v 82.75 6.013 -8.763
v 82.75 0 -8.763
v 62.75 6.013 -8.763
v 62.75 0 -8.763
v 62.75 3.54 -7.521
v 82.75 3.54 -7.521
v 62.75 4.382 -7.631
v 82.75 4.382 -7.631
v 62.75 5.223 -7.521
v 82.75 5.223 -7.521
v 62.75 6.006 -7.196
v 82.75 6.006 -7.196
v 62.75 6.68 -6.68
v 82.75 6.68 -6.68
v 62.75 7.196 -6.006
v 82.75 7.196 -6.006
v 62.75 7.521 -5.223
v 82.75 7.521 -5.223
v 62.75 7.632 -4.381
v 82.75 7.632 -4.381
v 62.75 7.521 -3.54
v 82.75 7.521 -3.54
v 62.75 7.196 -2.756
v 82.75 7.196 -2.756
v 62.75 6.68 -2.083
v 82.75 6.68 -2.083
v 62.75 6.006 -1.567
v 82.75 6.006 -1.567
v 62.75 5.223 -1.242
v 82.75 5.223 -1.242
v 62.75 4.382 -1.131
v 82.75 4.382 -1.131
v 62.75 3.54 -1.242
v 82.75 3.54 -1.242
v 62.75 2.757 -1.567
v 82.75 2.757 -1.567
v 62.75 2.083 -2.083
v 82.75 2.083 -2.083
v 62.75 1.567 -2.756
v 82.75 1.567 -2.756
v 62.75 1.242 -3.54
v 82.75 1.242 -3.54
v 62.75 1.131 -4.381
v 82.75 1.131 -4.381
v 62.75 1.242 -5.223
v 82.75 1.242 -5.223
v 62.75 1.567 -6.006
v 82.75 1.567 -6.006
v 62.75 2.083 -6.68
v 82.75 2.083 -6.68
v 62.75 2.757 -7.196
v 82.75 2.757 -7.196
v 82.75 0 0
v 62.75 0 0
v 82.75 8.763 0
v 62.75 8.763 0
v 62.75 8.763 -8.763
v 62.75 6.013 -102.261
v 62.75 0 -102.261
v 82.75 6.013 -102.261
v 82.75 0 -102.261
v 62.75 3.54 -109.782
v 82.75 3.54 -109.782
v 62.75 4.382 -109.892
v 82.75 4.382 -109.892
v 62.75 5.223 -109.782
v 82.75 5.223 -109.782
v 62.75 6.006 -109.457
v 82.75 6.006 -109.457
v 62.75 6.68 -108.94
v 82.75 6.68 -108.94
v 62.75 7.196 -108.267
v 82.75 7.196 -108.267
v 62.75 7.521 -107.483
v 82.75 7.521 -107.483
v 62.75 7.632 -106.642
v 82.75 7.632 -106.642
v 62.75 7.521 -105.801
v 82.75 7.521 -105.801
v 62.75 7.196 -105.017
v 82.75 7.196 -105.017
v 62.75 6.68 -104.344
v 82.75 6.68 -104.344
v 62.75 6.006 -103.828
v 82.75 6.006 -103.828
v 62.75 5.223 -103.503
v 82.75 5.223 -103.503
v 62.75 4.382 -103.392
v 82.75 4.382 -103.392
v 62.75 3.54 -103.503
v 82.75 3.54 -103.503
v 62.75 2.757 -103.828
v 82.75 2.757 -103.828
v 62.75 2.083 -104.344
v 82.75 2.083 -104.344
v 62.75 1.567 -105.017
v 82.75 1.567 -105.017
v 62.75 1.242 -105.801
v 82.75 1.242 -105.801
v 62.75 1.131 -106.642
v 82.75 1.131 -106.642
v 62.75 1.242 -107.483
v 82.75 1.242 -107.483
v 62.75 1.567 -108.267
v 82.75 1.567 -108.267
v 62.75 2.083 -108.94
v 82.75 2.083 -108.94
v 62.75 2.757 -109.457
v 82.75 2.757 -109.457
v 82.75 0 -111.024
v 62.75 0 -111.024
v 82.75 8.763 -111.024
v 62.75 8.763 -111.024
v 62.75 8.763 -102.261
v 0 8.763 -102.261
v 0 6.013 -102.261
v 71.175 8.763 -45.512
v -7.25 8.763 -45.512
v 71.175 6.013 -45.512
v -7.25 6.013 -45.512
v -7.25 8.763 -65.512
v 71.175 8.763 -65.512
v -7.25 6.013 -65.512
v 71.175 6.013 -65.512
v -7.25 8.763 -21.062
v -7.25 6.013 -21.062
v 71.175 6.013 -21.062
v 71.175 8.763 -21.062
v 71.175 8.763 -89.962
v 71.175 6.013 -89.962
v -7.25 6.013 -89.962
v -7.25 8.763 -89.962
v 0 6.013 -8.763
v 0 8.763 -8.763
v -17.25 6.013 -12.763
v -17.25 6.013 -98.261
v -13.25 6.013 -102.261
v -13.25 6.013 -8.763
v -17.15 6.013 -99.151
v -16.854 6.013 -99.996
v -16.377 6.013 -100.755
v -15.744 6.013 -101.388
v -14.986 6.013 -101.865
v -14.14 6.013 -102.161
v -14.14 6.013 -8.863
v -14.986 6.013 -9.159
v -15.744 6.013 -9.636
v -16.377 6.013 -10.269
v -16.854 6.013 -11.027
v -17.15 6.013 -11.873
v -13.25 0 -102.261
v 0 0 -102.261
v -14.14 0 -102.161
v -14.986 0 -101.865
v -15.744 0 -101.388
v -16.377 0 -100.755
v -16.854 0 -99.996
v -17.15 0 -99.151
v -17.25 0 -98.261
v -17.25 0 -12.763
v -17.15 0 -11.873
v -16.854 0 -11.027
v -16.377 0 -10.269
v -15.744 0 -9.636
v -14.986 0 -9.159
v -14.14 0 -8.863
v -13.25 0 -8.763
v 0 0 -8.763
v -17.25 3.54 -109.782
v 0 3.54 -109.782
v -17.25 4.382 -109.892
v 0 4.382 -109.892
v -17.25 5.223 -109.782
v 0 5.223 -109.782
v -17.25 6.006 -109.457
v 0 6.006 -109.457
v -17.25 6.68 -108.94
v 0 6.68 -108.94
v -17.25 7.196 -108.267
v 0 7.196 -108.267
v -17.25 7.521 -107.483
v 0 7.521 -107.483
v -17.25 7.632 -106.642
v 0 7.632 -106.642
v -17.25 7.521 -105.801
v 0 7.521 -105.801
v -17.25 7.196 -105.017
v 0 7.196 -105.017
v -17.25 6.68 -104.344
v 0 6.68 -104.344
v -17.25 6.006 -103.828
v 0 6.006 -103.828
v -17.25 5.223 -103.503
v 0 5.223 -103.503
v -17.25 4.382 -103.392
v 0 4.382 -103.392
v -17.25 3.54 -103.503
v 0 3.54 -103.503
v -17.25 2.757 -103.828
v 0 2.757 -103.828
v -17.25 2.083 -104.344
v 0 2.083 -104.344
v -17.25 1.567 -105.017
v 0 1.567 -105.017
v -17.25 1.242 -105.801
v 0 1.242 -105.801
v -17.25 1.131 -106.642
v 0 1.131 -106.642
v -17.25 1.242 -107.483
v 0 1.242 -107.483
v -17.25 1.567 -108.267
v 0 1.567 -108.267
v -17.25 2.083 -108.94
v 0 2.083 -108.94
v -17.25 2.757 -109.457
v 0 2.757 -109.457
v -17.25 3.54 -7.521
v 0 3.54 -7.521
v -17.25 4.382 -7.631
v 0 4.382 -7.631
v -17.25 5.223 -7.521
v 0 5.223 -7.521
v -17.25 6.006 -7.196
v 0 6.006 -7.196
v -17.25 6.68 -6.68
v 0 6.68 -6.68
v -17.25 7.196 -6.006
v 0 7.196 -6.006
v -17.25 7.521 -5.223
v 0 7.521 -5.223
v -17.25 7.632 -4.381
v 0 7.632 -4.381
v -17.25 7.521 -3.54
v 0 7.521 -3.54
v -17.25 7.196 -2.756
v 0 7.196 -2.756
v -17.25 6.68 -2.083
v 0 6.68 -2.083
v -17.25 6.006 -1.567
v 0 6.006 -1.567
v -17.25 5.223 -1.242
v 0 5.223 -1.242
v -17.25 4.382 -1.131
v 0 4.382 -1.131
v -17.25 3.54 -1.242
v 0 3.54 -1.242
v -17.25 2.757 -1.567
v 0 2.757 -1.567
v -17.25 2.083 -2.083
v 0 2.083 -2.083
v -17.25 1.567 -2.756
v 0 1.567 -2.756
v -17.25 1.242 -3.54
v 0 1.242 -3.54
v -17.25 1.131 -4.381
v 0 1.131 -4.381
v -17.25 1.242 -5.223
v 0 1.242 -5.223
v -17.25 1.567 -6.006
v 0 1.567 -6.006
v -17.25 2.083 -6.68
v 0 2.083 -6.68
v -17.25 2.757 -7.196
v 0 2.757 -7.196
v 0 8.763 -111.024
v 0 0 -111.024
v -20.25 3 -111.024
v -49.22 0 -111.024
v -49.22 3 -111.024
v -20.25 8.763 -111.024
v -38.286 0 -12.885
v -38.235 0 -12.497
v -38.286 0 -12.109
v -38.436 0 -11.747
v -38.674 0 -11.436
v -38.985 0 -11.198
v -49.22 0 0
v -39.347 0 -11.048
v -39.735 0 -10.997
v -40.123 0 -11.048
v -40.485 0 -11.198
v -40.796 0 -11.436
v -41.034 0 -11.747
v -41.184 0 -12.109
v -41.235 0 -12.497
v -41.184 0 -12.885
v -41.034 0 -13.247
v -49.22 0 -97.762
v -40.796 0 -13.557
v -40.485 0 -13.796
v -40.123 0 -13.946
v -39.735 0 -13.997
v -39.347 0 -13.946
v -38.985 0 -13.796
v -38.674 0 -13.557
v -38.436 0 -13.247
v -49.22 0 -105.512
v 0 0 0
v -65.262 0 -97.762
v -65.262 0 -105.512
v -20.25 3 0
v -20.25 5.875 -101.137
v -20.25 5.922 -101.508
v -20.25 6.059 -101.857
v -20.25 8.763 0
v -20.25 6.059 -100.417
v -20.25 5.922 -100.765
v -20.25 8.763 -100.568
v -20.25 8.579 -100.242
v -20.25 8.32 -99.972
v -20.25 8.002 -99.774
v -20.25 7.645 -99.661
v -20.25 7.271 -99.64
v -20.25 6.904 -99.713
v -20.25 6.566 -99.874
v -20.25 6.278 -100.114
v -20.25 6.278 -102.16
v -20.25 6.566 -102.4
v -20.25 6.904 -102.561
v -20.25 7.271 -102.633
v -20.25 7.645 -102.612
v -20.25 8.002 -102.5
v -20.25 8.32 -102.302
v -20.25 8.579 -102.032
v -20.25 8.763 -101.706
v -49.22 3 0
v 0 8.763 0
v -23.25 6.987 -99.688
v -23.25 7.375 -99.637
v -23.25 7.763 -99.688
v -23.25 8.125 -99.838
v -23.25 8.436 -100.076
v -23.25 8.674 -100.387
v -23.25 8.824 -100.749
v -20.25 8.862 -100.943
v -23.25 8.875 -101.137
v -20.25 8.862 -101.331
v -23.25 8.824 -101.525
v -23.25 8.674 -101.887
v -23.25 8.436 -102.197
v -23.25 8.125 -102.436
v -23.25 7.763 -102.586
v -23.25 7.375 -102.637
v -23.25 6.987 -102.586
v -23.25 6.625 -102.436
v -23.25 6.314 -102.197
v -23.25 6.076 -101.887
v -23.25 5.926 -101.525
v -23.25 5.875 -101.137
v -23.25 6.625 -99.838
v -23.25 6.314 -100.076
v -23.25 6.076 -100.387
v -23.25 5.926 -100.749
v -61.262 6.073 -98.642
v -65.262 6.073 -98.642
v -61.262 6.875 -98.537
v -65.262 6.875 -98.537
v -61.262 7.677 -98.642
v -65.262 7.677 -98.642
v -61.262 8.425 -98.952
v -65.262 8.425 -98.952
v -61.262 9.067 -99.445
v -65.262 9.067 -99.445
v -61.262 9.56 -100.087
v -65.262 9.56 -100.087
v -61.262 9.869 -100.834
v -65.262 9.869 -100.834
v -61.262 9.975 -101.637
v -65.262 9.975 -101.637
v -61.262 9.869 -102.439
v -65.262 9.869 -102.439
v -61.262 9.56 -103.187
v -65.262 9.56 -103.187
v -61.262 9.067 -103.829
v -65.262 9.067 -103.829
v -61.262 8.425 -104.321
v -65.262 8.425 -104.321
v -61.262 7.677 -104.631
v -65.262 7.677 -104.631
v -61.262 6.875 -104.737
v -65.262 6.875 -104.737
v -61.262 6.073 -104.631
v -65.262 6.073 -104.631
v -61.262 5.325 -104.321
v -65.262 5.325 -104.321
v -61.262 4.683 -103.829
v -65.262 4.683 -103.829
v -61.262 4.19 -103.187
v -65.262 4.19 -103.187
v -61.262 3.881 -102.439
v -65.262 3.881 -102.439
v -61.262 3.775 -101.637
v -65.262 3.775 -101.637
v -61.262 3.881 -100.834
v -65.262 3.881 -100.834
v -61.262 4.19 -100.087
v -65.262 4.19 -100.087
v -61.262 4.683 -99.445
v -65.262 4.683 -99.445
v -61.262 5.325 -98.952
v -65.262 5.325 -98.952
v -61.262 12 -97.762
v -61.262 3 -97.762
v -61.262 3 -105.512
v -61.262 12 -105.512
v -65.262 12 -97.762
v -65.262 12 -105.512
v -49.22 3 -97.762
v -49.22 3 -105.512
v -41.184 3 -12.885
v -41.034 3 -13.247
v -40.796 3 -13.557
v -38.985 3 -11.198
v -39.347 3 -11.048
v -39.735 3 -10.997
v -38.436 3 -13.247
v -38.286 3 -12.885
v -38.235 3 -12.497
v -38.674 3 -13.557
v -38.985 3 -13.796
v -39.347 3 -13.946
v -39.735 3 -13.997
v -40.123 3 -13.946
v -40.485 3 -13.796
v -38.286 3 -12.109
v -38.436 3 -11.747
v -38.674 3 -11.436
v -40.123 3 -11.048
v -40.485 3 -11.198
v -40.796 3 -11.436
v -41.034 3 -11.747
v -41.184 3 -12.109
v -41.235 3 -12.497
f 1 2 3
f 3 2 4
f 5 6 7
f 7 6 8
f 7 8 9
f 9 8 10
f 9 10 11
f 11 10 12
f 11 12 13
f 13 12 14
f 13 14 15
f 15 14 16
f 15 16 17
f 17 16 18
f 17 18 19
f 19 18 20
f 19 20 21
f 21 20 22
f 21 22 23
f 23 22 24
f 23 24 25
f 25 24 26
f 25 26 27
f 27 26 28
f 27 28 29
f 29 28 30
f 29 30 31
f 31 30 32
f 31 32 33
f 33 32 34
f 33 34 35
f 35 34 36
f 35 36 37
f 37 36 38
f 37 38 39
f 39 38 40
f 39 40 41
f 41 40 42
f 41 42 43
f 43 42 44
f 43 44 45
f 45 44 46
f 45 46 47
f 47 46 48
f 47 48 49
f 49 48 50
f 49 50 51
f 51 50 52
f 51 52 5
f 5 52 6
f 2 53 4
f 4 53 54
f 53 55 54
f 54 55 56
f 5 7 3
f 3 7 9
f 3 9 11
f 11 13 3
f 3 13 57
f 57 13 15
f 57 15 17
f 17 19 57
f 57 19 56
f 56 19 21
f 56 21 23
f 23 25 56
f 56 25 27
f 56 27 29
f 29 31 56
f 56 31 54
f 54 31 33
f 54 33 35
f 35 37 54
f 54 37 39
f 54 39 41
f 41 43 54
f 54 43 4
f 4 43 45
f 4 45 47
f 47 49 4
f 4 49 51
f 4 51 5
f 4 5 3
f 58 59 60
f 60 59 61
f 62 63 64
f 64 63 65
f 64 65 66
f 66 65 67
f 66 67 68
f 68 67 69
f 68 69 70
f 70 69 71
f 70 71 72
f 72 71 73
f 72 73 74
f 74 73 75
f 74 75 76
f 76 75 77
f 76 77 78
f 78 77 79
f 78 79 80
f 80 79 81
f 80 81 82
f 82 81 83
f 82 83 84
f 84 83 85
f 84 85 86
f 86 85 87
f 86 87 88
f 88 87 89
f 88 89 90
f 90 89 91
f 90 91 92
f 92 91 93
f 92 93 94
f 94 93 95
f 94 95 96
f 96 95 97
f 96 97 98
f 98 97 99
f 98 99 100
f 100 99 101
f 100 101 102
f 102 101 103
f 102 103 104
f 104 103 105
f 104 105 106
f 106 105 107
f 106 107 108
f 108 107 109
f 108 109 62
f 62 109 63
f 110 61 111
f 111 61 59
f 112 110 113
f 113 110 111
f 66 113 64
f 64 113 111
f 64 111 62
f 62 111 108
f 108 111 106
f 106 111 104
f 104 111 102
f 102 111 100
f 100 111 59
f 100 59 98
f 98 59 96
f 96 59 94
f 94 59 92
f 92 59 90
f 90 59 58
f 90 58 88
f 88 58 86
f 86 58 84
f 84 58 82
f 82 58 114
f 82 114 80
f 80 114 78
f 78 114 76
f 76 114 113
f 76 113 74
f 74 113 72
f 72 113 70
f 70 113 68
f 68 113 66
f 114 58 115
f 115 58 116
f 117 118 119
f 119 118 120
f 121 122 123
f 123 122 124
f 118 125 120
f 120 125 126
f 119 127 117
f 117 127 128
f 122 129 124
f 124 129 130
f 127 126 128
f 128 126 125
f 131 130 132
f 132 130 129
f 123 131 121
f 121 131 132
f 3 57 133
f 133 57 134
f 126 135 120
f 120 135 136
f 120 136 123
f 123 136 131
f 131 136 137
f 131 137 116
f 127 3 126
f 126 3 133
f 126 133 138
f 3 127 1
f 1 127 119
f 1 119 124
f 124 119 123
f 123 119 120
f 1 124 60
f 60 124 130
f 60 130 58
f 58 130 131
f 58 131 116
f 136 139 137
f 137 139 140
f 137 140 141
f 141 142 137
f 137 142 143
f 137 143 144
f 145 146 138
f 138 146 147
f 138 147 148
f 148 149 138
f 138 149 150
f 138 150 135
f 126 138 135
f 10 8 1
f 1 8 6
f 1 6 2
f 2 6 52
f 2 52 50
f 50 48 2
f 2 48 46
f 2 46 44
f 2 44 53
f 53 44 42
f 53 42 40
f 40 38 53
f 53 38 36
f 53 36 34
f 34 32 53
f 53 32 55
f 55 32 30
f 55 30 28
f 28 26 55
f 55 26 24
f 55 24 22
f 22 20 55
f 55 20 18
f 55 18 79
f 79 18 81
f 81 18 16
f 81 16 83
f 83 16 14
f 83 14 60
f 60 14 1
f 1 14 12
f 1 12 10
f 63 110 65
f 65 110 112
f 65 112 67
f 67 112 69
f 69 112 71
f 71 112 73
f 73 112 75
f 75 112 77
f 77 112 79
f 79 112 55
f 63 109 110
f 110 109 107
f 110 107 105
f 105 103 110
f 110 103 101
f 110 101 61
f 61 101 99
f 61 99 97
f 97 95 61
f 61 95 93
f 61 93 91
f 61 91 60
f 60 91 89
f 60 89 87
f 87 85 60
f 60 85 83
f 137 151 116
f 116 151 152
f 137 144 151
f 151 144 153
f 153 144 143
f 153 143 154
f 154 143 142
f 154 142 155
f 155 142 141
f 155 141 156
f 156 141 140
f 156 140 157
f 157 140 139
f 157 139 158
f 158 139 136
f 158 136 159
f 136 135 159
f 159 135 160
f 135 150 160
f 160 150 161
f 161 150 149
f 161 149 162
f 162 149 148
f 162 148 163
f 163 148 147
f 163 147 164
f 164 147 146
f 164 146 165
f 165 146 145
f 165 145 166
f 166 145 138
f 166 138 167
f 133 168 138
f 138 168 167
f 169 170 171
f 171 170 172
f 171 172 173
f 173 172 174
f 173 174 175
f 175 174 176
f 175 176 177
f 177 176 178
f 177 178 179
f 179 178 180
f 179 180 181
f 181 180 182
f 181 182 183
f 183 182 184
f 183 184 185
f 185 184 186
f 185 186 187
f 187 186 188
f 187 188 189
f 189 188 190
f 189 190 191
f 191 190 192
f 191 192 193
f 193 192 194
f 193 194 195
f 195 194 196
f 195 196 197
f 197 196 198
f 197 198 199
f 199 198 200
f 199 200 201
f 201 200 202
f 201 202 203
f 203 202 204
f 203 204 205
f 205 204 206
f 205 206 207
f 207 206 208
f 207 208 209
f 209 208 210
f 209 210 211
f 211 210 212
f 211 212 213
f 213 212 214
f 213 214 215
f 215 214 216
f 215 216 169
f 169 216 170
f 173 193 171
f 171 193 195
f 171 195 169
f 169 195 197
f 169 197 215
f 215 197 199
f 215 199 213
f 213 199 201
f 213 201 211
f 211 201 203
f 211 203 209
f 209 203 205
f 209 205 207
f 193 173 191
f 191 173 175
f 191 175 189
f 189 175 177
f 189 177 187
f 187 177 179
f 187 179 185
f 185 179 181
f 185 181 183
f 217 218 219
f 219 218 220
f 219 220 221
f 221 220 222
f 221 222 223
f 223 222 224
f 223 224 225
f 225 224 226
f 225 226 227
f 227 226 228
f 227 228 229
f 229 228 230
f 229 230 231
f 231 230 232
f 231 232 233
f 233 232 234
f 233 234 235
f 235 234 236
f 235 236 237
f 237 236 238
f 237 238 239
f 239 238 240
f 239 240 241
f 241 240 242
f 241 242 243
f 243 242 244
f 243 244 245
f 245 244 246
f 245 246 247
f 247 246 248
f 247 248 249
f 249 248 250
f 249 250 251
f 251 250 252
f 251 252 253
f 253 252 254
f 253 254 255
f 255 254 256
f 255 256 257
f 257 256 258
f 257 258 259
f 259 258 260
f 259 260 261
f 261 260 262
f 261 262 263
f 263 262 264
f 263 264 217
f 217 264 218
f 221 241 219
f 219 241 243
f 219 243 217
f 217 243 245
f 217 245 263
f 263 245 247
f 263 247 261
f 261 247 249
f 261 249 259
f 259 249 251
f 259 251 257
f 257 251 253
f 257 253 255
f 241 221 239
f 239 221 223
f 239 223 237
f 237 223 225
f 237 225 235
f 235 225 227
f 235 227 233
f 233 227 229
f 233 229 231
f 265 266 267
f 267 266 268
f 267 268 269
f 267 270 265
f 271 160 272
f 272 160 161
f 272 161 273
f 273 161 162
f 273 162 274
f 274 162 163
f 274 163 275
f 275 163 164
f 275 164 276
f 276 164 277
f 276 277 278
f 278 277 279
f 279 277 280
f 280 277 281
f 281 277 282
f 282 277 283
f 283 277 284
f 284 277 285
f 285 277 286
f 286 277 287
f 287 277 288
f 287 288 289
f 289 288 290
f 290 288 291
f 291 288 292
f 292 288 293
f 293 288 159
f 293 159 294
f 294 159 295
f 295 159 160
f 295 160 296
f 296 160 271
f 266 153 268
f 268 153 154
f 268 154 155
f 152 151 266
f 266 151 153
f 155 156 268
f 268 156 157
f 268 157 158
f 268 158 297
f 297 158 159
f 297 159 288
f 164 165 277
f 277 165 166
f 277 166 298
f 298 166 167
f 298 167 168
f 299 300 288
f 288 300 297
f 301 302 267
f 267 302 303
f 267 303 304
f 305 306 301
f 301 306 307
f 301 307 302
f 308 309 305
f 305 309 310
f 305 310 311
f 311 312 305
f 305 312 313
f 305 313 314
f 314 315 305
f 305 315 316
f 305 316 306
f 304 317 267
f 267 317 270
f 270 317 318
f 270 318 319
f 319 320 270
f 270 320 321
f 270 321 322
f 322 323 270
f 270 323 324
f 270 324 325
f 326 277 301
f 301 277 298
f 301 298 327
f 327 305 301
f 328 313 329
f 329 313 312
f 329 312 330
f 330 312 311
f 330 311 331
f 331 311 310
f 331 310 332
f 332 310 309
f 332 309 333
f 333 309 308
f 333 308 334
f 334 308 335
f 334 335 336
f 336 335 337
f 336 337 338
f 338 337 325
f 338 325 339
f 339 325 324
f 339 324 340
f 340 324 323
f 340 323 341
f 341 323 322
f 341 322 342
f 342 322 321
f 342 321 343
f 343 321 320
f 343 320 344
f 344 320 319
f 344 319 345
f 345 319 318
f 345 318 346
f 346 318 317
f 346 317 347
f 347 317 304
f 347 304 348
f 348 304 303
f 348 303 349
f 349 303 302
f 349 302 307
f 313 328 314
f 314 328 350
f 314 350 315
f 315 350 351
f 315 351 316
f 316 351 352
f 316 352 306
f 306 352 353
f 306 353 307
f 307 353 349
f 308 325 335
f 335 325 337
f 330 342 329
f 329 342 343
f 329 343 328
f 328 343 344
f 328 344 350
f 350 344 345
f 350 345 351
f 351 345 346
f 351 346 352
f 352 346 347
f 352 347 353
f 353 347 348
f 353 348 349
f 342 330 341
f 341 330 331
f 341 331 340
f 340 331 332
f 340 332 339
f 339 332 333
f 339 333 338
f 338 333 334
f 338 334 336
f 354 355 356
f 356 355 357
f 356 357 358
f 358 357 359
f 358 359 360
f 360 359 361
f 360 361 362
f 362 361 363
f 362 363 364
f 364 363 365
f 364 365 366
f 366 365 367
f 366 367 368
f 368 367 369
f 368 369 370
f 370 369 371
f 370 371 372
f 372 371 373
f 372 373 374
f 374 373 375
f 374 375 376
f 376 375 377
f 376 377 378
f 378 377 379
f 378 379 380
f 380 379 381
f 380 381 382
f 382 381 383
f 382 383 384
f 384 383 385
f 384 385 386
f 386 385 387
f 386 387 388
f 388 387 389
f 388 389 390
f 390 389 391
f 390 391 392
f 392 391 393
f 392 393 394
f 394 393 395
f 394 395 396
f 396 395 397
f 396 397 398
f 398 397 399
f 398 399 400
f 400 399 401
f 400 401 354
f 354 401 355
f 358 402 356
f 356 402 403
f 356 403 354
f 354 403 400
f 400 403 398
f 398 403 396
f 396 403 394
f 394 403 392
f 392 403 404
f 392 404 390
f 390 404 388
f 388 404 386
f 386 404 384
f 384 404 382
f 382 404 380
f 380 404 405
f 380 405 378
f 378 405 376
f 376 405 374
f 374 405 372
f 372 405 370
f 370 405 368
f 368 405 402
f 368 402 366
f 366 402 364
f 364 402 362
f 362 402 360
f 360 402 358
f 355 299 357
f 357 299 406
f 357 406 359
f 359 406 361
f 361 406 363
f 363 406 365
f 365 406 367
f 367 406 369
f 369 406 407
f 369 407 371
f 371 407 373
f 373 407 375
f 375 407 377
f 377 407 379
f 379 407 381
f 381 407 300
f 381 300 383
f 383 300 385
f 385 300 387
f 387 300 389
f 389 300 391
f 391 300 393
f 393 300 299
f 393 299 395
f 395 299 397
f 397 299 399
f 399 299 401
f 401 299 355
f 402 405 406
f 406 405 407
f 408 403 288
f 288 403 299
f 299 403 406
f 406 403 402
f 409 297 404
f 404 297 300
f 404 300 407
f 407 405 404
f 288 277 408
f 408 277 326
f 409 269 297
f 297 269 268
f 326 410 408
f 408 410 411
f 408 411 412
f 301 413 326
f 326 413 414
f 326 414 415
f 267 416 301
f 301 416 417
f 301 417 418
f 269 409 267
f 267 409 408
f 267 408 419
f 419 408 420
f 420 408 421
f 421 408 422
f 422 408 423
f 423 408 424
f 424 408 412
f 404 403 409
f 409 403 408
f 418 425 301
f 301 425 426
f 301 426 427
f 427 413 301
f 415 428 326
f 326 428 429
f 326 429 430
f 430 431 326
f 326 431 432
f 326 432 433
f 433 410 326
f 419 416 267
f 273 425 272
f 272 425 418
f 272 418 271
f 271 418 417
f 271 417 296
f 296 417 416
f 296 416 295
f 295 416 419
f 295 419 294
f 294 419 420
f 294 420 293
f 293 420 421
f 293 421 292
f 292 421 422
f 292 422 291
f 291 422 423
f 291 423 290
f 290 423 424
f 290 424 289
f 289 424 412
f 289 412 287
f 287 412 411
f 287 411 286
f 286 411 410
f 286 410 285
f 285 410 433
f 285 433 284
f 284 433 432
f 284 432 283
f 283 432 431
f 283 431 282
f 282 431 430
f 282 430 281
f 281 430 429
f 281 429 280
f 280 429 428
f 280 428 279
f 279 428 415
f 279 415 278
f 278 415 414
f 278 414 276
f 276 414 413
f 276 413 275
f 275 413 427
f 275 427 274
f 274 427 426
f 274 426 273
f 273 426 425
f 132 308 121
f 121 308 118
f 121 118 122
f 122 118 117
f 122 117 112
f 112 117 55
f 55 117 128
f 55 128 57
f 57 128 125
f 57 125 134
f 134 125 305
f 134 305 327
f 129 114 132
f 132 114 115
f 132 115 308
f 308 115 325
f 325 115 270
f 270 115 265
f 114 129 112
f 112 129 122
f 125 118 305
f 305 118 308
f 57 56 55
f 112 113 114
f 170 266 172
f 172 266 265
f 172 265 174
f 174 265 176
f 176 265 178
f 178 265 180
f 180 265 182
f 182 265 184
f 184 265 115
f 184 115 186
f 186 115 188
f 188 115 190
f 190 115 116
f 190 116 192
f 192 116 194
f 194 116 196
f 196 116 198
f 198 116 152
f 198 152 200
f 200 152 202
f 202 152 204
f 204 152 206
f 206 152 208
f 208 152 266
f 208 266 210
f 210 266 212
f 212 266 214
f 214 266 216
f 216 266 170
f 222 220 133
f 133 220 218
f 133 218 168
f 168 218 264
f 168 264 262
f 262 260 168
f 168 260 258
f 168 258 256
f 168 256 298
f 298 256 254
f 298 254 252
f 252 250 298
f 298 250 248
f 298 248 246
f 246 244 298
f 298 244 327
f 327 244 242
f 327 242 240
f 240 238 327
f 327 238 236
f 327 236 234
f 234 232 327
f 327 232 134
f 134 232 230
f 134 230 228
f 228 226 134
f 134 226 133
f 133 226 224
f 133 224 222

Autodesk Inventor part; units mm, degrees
ref_plane "YZ Plane" through (0, 0, 0) normal (1, 0, 0) x (0, 1, 0)
ref_plane "XZ Plane" through (0, 0, 0) normal (0, 1, 0) x (-1, 0, 0)
ref_plane "XY Plane" through (0, 0, 0) normal (0, 0, 1) x (1, 0, 0)
sketch "Sketch1" plane through (0, 0, 0) normal (1, 0, 0) x (0, 1, 0)
  line L0 (0, 0) -> (8.763, 0)
  line L1 (8.763, 0) -> (8.763, -5.5118)
  line L2 (8.763, -5.5118) -> (0, -5.5118)
  line L3 (0, -5.5118) -> (0, 0)
  line L4 (1.5875, -3.9243) -> (7.1755, -3.9243)
  line L5 (7.1755, -3.9243) -> (7.1755, -1.5875)
  line L6 (7.1755, -1.5875) -> (1.5875, -1.5875)
  line L7 (1.5875, -1.5875) -> (1.5875, -3.9243)
  line L8 (1.5875, -3.9243) -> (7.1755, -1.5875) construction
  line L9 (7.1755, -3.9243) -> (1.5875, -1.5875) construction
  line L10 (0, -105.512) -> (8.763, -105.512)
  line L11 (8.763, -105.512) -> (8.763, -111.0238)
  line L12 (8.763, -111.0238) -> (0, -111.0238)
  line L13 (0, -111.0238) -> (0, -105.512)
  line L14 (1.5875, -109.4363) -> (7.1755, -109.4363)
  line L15 (7.1755, -109.4363) -> (7.1755, -107.0995)
  line L16 (7.1755, -107.0995) -> (1.5875, -107.0995)
  line L17 (1.5875, -107.0995) -> (1.5875, -109.4363)
  line L18 (1.5875, -109.4363) -> (7.1755, -107.0995) construction
  line L19 (7.1755, -109.4363) -> (1.5875, -107.0995) construction
  point P0 (4.3815, -2.7559)
  point P1 (4.3815, -108.2679)
  dimension "d0" = 8.763
  dimension "d1" = 5.5118
  dimension "d2" = 5.588
  dimension "d3" = 2.3368
  dimension "d4" = 8.763
  dimension "d5" = 5.5118
  dimension "d6" = 5.588
  dimension "d7" = 2.3368
extrude "Extrusion1" add sketch "Sketch1" against normal blind 30
sketch "Sketch2" plane through (-30, 0, 0) normal (-1, 0, 0) x (0, 0, 1)
  line L0 (0, 0) -> (0, 8.763) projected
  line L1 (-111.0238, 0) -> (0, 0)
  line L2 (0, 0) -> (0, 8.763)
  line L3 (0, 8.763) -> (-111.0238, 8.763)
  line L4 (-111.0238, 8.763) -> (-111.0238, 0)
extrude "Extrusion2" add sketch "Sketch2" along normal blind 0.25
fillet "Fillet1" radius 5 2 edges at (-30, 4.3815, -5.5118) (-30, 4.3815, -105.512)
sketch "Sketch3" plane through (-30.25, 0, 0) normal (-1, 0, 0) x (0, 0, 1)
  point P0 (0, 0)
sketch "Sketch4" plane through (-30.25, 0, 0) normal (-1, 0, 0) x (0, 0, 1)
  line L0 (-111.0238, 8.763) -> (-111.0238, 0) projected
  line L1 (0, 0) -> (-111.0238, 0)
  line L2 (-111.0238, 0) -> (-111.0238, 3)
  line L3 (-111.0238, 3) -> (0, 3)
  line L4 (0, 3) -> (0, 0)
  dimension "d13" = 3
extrude "Extrusion3" add sketch "Sketch4" along normal blind 18.97
sketch "Sketch5" plane through (-30.25, 3, 0) normal (0, 1, 0) x (1, 0, 0)
  line L0 (0, 0) -> (0, 111.0238) construction
  line L1 (0, 0) -> (-9.485, 0) construction
  line L2 (-9.485, 0) -> (-9.485, 6.985) construction
  line L3 (-9.485, 6.985) -> (0, 6.985) construction
  line L4 (0, 6.985) -> (0, 0) construction
  circle A0 centre (-9.485, 6.985) radius 1.5875
  point P0 (30.25, 0)
  dimension "d16" = 9.485
  dimension "d17" = 6.985
  dimension "d18" = 3.175
extrude "Extrusion4" cut sketch "Sketch5" against normal blind 5
sketch "Sketch6" plane through (-30.25, 3, 0) normal (0, 1, 0) x (1, 0, 0)
  line L0 (30.25, 111.0238) -> (-18.97, 111.0238) construction
  line L1 (-28.07, 111.0238) -> (-28.07, 111.0238) construction
  line L2 (-28.07, 111.0238) -> (-28.07, 111.0238) construction
  line L3 (-28.07, 111.0238) -> (-28.07, 111.0238) construction
  line L4 (-28.07, 111.0238) -> (-28.07, 111.0238) construction
  line L5 (-28.07, 111.0238) -> (-28.07, 111.0238) construction
  line L6 (-28.07, 118.8238) -> (-28.07, 111.0238) construction
  line L7 (-28.07, 111.0238) -> (-37.17, 111.0238) construction
  line L8 (-37.17, 111.0238) -> (-37.17, 114.8988) construction
  line L9 (-28.07, 111.0238) -> (-28.07, 111.0238) construction
  line L10 (-28.07, 111.0238) -> (-28.07, 111.0238) construction
  line L11 (-28.07, 111.0238) -> (-28.07, 111.0238) construction
  line L12 (-28.07, 111.0238) -> (-28.07, 111.0238) construction
  line L13 (-28.07, 111.0238) -> (-28.07, 111.0238) construction
  line L14 (-28.07, 111.0238) -> (-28.07, 111.0238)
  line L15 (-28.07, 111.0238) -> (-28.07, 111.0238)
  line L16 (-28.07, 111.0238) -> (-28.07, 111.0238)
  line L17 (-28.07, 111.0238) -> (-28.07, 111.0238)
  point P0 (30.25, 0)
  dimension "d21" = 0
  dimension "d22" = 0
  dimension "d23" = 0
  dimension "d26" = 0
  dimension "d27" = 0
sketch "Sketch7" plane through (-30.25, 3, 0) normal (0, 1, 0) x (1, 0, 0)
  line L0 (-18.97, 0) -> (-18.97, 111.0238) projected
  line L1 (-18.97, 111.0238) -> (-27.97, 111.0238)
  line L2 (-27.97, 111.0238) -> (-27.97, 103.2738)
  line L3 (-27.97, 103.2738) -> (-18.97, 103.2738)
  line L4 (-18.97, 103.2738) -> (-18.97, 111.0238)
  point P0 (30.25, 0)
  dimension "d28" = 9
  dimension "d29" = 7.75
extrude "Extrusion5" add sketch "Sketch7" against normal blind 3
sketch "Sketch8" plane through (-30.25, 3, 0) normal (0, 1, 0) x (1, 0, 0)
  line L0 (-27.97, 111.0238) -> (-27.97, 103.2738) projected
  line L1 (-27.97, 111.0238) -> (-31.97, 111.0238)
  line L2 (-31.97, 111.0238) -> (-31.97, 103.2738)
  line L3 (-31.97, 103.2738) -> (-27.97, 103.2738)
  line L4 (-27.97, 103.2738) -> (-27.97, 111.0238)
  point P0 (30.25, 0)
  dimension "d32" = 4
extrude "Extrusion6" add sketch "Sketch8" along normal blind 8 and the other way blind 3
sketch "Sketch9" plane through (0, 0, -5.5118) normal (0, -1, 0) x (1, 0, 0)
  point P0 (0, 5.5118)
sketch "Sketch10" plane through (-62.22, 0, -103.2738) normal (-1, 0, 0) x (0, 0, 1)
  line L0 (-7.75, 0) -> (-2.2382, 0) construction
  line L1 (0, 3) -> (0, 11) construction
  line L2 (-7.75, 0) -> (0, 0) construction
  line L3 (0, 0) -> (0, 3) construction
  line L4 (0, 3) -> (-7.75, 3) construction
  line L5 (-7.75, 3) -> (-7.75, 0) construction
  line L6 (103.2738, 3) -> (0, 3) construction
  line L7 (-7.75, 8.763) -> (-7.75, 3) construction
  line L8 (0, 3) -> (-7.75, 3) construction
  line L9 (-7.75, 3) -> (-7.75, 6.875) construction
  line L10 (-7.75, 6.875) -> (0, 6.875) construction
  line L11 (0, 6.875) -> (0, 3) construction
  circle A0 centre (-3.875, 6.875) radius 3.1
  point P0 (103.2738, 0)
  dimension "d37" = 3.875
  dimension "d38" = 6.2
extrude "Extrusion7" cut sketch "Sketch10" against normal blind 5
sketch "Sketch11" plane through (0, 8.763, 0) normal (0, 1, 0) x (1, 0, 0)
  line L0 (-30.25, 111.0238) -> (-30.25, 0) projected
  line L1 (0, 0) -> (-30.25, 0) projected
  line L2 (-30.25, 111.0238) -> (-20.25, 111.0238)
  line L3 (-20.25, 111.0238) -> (-20.25, 0)
  line L4 (-20.25, 0) -> (-30.25, 0)
  line L5 (-30.25, 0) -> (-30.25, 111.0238)
  dimension "d41" = 10
extrude "Extrusion8" cut sketch "Sketch11" against normal blind 10
sketch "Sketch12" plane through (-30.25, 0, 0) normal (1, 0, 0) x (0, 0, -1)
  line L0 (111.0238, 3) -> (111.0238, 0) projected
  line L1 (0, 0) -> (111.0238, 0)
  line L2 (111.0238, 0) -> (111.0238, 3)
  line L3 (111.0238, 3) -> (0, 3)
  line L4 (0, 3) -> (0, 0)
extrude "Extrusion9" add sketch "Sketch12" along normal blind 13
sketch "Sketch13" plane through (0, 8.763, 0) normal (0, 1, 0) x (1, 0, 0)
  line L0 (-20.25, 5.5118) -> (-20.25, 0) projected
  line L1 (-62.22, 111.0238) -> (0, 111.0238) projected
  line L2 (-20.25, 0) -> (-17.25, 0)
  line L3 (-17.25, 0) -> (-17.25, 111.0238)
  line L4 (-17.25, 111.0238) -> (-20.25, 111.0238)
  line L5 (-20.25, 111.0238) -> (-20.25, 0)
  point P0 (0, 0)
  dimension "d46" = 3
extrude "Extrusion10" add sketch "Sketch13" against normal blind 8.75
sketch "Sketch14" plane through (-49.22, 3, 0) normal (0, 1, 0) x (1, 0, 0)
  line L0 (-9, 111.0238) -> (28.97, 111.0238) construction
  line L1 (0, 0) -> (0, 0) construction
  line L2 (0, 0) -> (0, 111.0238) construction
  line L3 (0, 111.0238) -> (0, 111.0238) construction
  line L4 (0, 111.0238) -> (0, 0) construction
  point P0 (49.22, 0)
  dimension "d49" = 0
sketch "Sketch15" plane through (-49.22, 3, 0) normal (0, 1, 0) x (1, 0, 0)
  line L0 (0, 107.1488) -> (28.97, 107.1488) construction
  line L1 (28.97, 111.0238) -> (28.97, 0) construction
  point P0 (49.22, 0)
sketch "Sketch16" plane through (-20.25, 8.763, -111.0238) normal (-1, 0, 0) x (0, 0, 1)
  line L0 (0, 0) -> (111.0238, 0) construction
  line L1 (0, 0) -> (7.7501, 0) construction
  line L2 (0, -5.763) -> (111.0238, -5.763) construction
  line L3 (0, 0) -> (7.7501, 0) construction
  line L4 (7.7501, 0) -> (7.7501, -5.763) construction
  line L5 (7.7501, -5.763) -> (0, -5.763) construction
  line L6 (0, -5.763) -> (0, 0) construction
  line L7 (0, -5.763) -> (4.375, -5.763) construction
  line L8 (4.375, -5.763) -> (4.375, -1.388) construction
  line L9 (4.375, -1.388) -> (0, -1.388) construction
  line L10 (0, -1.388) -> (0, -5.763) construction
  circle A0 centre (4.375, -1.388) radius 1.5
  point P0 (111.0238, -8.763)
  dimension "d52" = 4.375
  dimension "d53" = 4.375
  dimension "d54" = 3
extrude "Extrusion11" add sketch "Sketch16" along normal blind 2
sketch "Sketch17" plane through (-49.22, 3, 0) normal (0, 1, 0) x (1, 0, 0)
  circle A0 centre (9.485, 6.985) radius 1.5875 construction
  line L0 (0, 0) -> (0, 103.2738) construction
  line L1 (9.485, 6.985) -> (0, 6.985) construction
  line L2 (0, 6.985) -> (0, 0) construction
  line L3 (0, 0) -> (9.485, 0) construction
  line L4 (9.485, 0) -> (9.485, 6.985) construction
  line L5 (31.97, 5.5118) -> (31.97, 105.512) construction
  line L6 (31.97, 5.5118) -> (0, 5.5118) construction
  line L7 (0, 5.5118) -> (0, 12.4968) construction
  line L8 (0, 12.4968) -> (31.97, 12.4968) construction
  line L9 (31.97, 12.4968) -> (31.97, 5.5118) construction
  circle A1 centre (9.485, 12.4968) radius 1.5
  circle A2 centre (9.485, 6.985) radius 1.4732
  circle A3 centre (9.485, 6.985) radius 2.1184
  point P0 (49.22, 0)
  dimension "d57" = 9.485
  dimension "d58" = 6.985
  dimension "d59" = 6.985
  dimension "d60" = 3
extrude "Extrusion12" cut sketch "Sketch17" against normal blind 3 contours A1
sketch "Sketch18" plane through (-49.22, 3, 0) normal (0, 1, 0) x (1, 0, 0)
  circle A0 centre (9.485, 6.985) radius 1.5875 projected
  circle A1 centre (9.485, 6.985) radius 2.2024
  point P0 (49.22, 0)
extrude "Extrusion13" add sketch "Sketch18" against normal blind 3 contours A0 | A1
sketch "Sketch19" plane through (-49.22, 3, 0) normal (0, 1, 0) x (1, 0, 0)
  line L0 (49.22, 5.5118) -> (31.97, 5.5118) construction
  line L1 (31.97, 5.5118) -> (0, 5.5118) construction
  line L2 (31.97, 105.5118) -> (31.97, 5.5118) construction
  line L3 (0, 103.2738) -> (0, 0) construction
  line L4 (0, 103.2738) -> (-13.792, 103.2738) construction
  line L5 (-13.792, 103.2738) -> (-13.792, 112.9328) construction
  line L6 (-13.792, 112.9328) -> (0, 112.9328) construction
  line L7 (0, 112.9328) -> (0, 103.2738) construction
  line L8 (-9, 103.2738) -> (0, 103.2738) projected
  line L9 (0, 103.2738) -> (-14.6847, 103.2738)
  line L10 (-14.6847, 103.2738) -> (-14.6847, 119.5752)
  line L11 (-14.6847, 119.5752) -> (0, 119.5752)
  line L12 (0, 119.5752) -> (0, 103.2738)
  point P0 (49.22, 0)
extrude "Extrusion14" cut sketch "Sketch19" along normal mid plane 30
sketch "Sketch20" plane through (-49.22, 3, 0) normal (0, 1, 0) x (1, 0, 0)
  line L0 (31.97, 5.5118) -> (31.97, 105.512) construction
  line L1 (0, 0) -> (0, 111.0238) construction
  line L2 (31.97, 5.5118) -> (0, 5.5118) construction
  line L3 (0, 5.5118) -> (0, 105.5118) construction
  line L4 (0, 105.5118) -> (31.97, 105.5118) construction
  line L5 (31.97, 105.5118) -> (31.97, 5.5118) construction
  line L6 (0, 105.5118) -> (-12.042, 105.5118)
  line L7 (-12.042, 105.5118) -> (-12.042, 97.7618)
  line L8 (-12.042, 97.7618) -> (0, 97.7618)
  line L9 (0, 97.7618) -> (0, 105.5118)
  point P0 (49.22, 0)
  dimension "d68" = 100
  dimension "d69" = 12.042
  dimension "d70" = 7.75
extrude "Extrusion15" add sketch "Sketch20" against normal blind 3
sketch "Sketch21" plane through (-49.22, 3, 0) normal (0, 1, 0) x (1, 0, 0)
  line L0 (-12.042, 97.7618) -> (0, 97.7618) projected
  line L1 (-12.042, 97.7618) -> (-16.042, 97.7618)
  line L2 (-16.042, 97.7618) -> (-16.042, 105.5118)
  line L3 (-16.042, 105.5118) -> (-12.042, 105.5118)
  line L4 (-12.042, 105.5118) -> (-12.042, 97.7618)
  point P0 (49.22, 0)
  dimension "d73" = 4
extrude "Extrusion16" add sketch "Sketch21" along normal blind 9 and the other way blind 3
sketch "Sketch22" plane through (-65.262, 0, -97.7618) normal (-1, 0, 0) x (0, 0, 1)
  line L0 (-13.262, 3) -> (97.7618, 3) construction
  line L1 (0, 3) -> (-7.75, 3) construction
  line L2 (-7.75, 0) -> (-7.75, 3) construction
  line L3 (-7.75, 3) -> (-3.875, 3) construction
  line L4 (-3.875, 3) -> (-3.875, 6.875) construction
  line L5 (-3.875, 6.875) -> (-7.75, 6.875) construction
  line L6 (-7.75, 6.875) -> (-7.75, 3) construction
  circle A0 centre (-3.875, 6.875) radius 3.1
  point P0 (97.7618, 0)
  dimension "d78" = 7.75
  dimension "d79" = 3.875
  dimension "d80" = 3.875
  dimension "d81" = 6.2
extrude "Extrusion17" cut sketch "Sketch22" against normal blind 4
sketch "Sketch23" plane through (-49.22, 3, 0) normal (0, 1, 0) x (1, 0, 0)
  point P0 (49.22, 0)
sketch "Sketch24" plane through (-20.25, 3, -111.0238) normal (-1, 0, 0) x (0, 0, 1)
  line L0 (0, 5.763) -> (3.8063, 5.763) construction
  line L1 (0, 0) -> (111.0238, 0) construction
  line L2 (0, 5.763) -> (5.512, 5.763) construction
  line L3 (5.512, 5.763) -> (5.512, 0) construction
  line L4 (5.512, 0) -> (0, 0) construction
  line L5 (0, 0) -> (0, 5.763) construction
  line L6 (5.512, 0) -> (9.887, 0) construction
  line L7 (9.887, 0) -> (9.887, 4.375) construction
  line L8 (9.887, 4.375) -> (5.512, 4.375) construction
  line L9 (5.512, 4.375) -> (5.512, 0) construction
  circle A0 centre (9.887, 4.375) radius 1.5
  point P0 (111.0238, -3)
  dimension "d84" = 5.512
  dimension "d85" = 4.375
  dimension "d86" = 4.375
  dimension "d87" = 3
extrude "Extrusion18" add sketch "Sketch24" along normal blind 3
sketch "Sketch25" plane through (-22.25, 7.375, -106.6488) normal (-1, 0, 0) x (0, 0, 1)
  circle A0 centre (0, 0) radius 1.5
  point P0 (106.6488, -7.375)
extrude "Extrusion19" cut sketch "Sketch25" against normal blind 2
sketch "Sketch26" plane through (0, 0, 0) normal (1, 0, 0) x (0, 0, -1)
  line L0 (0, 0) -> (0, 8.763) projected
  line L1 (0, 8.763) -> (8.763, 8.763)
  line L2 (8.763, 8.763) -> (8.763, 0)
  line L3 (8.763, 0) -> (0, 0)
  line L4 (0, 0) -> (0, 8.763)
  line L5 (105.512, 8.763) -> (111.0238, 8.763) projected
  line L6 (5.5118, 0) -> (105.512, 0) projected
  line L7 (111.0238, 8.763) -> (102.2608, 8.763)
  line L8 (102.2608, 8.763) -> (102.2608, 0)
  line L9 (102.2608, 0) -> (111.0238, 0)
  line L10 (111.0238, 0) -> (111.0238, 8.763)
  dimension "d92" = 8.763
  dimension "d93" = 8.763
extrude "Extrusion20" add sketch "Sketch26" against normal blind 20.25
sketch "Sketch27" plane through (-49.22, 3, 0) normal (0, 1, 0) x (1, 0, 0)
  point P0 (49.22, 0)
sketch "Sketch28" plane through (0, 0, 0) normal (1, 0, 0) x (0, 0, -1)
  line L0 (0, 8.763) -> (8.763, 8.763) construction
  line L1 (0, 8.763) -> (8.763, 0) construction
  line L2 (8.763, 0) -> (8.763, 8.763) construction
  line L3 (97.7618, 0) -> (0, 0) construction
  line L4 (8.763, 8.763) -> (0, 0) construction
  line L5 (111.0238, 8.763) -> (102.2608, 8.763) construction
  line L6 (111.0238, 8.763) -> (111.0238, 0) construction
  line L7 (102.2608, 8.763) -> (111.0238, 0) construction
  line L8 (111.0238, 0) -> (111.0238, 8.763) construction
  line L9 (111.0238, 8.763) -> (102.2608, 0) construction
  circle A0 centre (106.6423, 4.3815) radius 3.25
  circle A1 centre (4.3815, 4.3815) radius 3.25
  dimension "d96" = 6.5
  dimension "d97" = 6.5
extrude "Extrusion21" cut sketch "Sketch28" against normal blind 17.25
fillet "Fillet2" radius 4 2 edges at (-17.25, 4.3815, -8.763) (-17.25, 4.3815, -102.2608)
sketch "Sketch29" plane through (-17.25, 0, 0) normal (1, 0, 0) x (0, 0, -1)
  line L0 (8.763, 0) -> (8.763, 8.763) projected
  line L1 (102.2608, 0) -> (102.2608, 8.763) projected
  line L2 (8.763, 8.763) -> (102.2608, 8.763)
  line L3 (102.2608, 8.763) -> (102.2608, 6.013)
  line L4 (102.2608, 6.013) -> (8.763, 6.013)
  line L5 (8.763, 6.013) -> (8.763, 8.763)
  point P0 (0, 0)
  dimension "d101" = 2.75
extrude "Extrusion22" add sketch "Sketch29" along normal blind 100
sketch "Sketch30" plane through (-20.25, 8.763, -111.0238) normal (0, 1, 0) x (1, 0, 0)
  line L0 (103, -102.2608) -> (103, -8.763) construction
  line L1 (103, -102.2608) -> (3, -102.2608) construction
  line L2 (3, -102.2608) -> (3, -8.763) construction
  line L3 (3, -8.763) -> (103, -8.763) construction
  line L4 (103, -8.763) -> (103, -102.2608) construction
  line L5 (3, -98.2608) -> (3, -12.763) construction
  line L6 (3, -55.5119) -> (103, -55.5119) construction
  line L7 (3, -55.5119) -> (101.425, -55.5119) construction
  line L8 (101.425, -55.5119) -> (101.425, -99.9619) construction
  line L9 (101.425, -99.9619) -> (3, -99.9619) construction
  line L10 (3, -99.9619) -> (3, -55.5119) construction
  line L11 (3, -55.5119) -> (101.425, -55.5119) construction
  line L12 (101.425, -55.5119) -> (101.425, -11.0619) construction
  line L13 (101.425, -11.0619) -> (3, -11.0619) construction
  line L14 (3, -11.0619) -> (3, -55.5119) construction
  line L15 (101.425, -55.5119) -> (91.425, -55.5119) construction
  line L16 (91.425, -55.5119) -> (91.425, -11.0619) construction
  line L17 (91.425, -11.0619) -> (91.425, -21.0619) construction
  line L18 (91.425, -21.0619) -> (3, -21.0619) construction
  line L19 (13, -21.0619) -> (13, -99.9619) construction
  line L20 (13, -99.9619) -> (13, -89.9619) construction
  line L21 (13, -89.9619) -> (101.425, -89.9619) construction
  line L22 (91.425, -55.5119) -> (91.425, -89.9619) construction
  line L23 (13, -89.9619) -> (91.425, -89.9619)
  line L24 (91.425, -89.9619) -> (91.425, -21.0619)
  line L25 (91.425, -21.0619) -> (13, -21.0619)
  line L26 (13, -21.0619) -> (13, -89.9619)
  point P0 (20.25, -111.0238)
  dimension "d104" = 100
  dimension "d105" = 98.425
  dimension "d106" = 44.45
  dimension "d107" = 44.45
  dimension "d108" = 10
  dimension "d109" = 10
  dimension "d110" = 10
extrude "Extrusion23" cut sketch "Sketch30" against normal blind 5
sketch "Sketch31" plane through (-20.25, 8.763, -111.0238) normal (0, 1, 0) x (1, 0, 0)
  line L0 (13, -89.9619) -> (13, -21.0619) construction
  line L1 (13, -55.5119) -> (91.425, -55.5119) construction
  line L2 (91.425, -89.9619) -> (91.425, -21.0619) construction
  line L3 (91.425, -45.5119) -> (13, -45.5119)
  line L4 (13, -45.5119) -> (13, -65.5119)
  line L5 (13, -65.5119) -> (91.425, -65.5119)
  line L6 (91.425, -65.5119) -> (91.425, -45.5119)
  line L7 (91.425, -45.5119) -> (13, -65.5119) construction
  line L8 (13, -45.5119) -> (91.425, -65.5119) construction
  point P0 (20.25, -111.0238)
  point P1 (52.2125, -55.5119)
  dimension "d113" = 20
extrude "Extrusion24" add sketch "Sketch31" against normal blind 2.75
sketch "Sketch32" plane through (82.75, 0, 0) normal (1, 0, 0) x (0, 0, -1)
  line L0 (8.763, 8.763) -> (8.763, 6.013) projected
  line L1 (0, 0) -> (8.763, 0) projected
  line L2 (8.763, 8.763) -> (0, 8.763)
  line L3 (0, 8.763) -> (0, 0)
  line L4 (0, 0) -> (8.763, 0)
  line L5 (8.763, 0) -> (8.763, 8.763)
  line L6 (111.0238, 8.763) -> (111.0238, 0) projected
  line L7 (102.2608, 8.763) -> (111.0238, 8.763)
  line L8 (111.0238, 8.763) -> (111.0238, 0)
  line L9 (111.0238, 0) -> (102.2608, 0)
  line L10 (102.2608, 0) -> (102.2608, 8.763)
  circle A0 centre (106.6423, 4.3815) radius 3.25
  circle A1 centre (4.3815, 4.3815) radius 3.25 projected
  circle A2 centre (4.3815, 4.3815) radius 3.25
extrude "Extrusion25" add sketch "Sketch32" against normal blind 20
properties part number "mtv_frontHolder(4_30)"
